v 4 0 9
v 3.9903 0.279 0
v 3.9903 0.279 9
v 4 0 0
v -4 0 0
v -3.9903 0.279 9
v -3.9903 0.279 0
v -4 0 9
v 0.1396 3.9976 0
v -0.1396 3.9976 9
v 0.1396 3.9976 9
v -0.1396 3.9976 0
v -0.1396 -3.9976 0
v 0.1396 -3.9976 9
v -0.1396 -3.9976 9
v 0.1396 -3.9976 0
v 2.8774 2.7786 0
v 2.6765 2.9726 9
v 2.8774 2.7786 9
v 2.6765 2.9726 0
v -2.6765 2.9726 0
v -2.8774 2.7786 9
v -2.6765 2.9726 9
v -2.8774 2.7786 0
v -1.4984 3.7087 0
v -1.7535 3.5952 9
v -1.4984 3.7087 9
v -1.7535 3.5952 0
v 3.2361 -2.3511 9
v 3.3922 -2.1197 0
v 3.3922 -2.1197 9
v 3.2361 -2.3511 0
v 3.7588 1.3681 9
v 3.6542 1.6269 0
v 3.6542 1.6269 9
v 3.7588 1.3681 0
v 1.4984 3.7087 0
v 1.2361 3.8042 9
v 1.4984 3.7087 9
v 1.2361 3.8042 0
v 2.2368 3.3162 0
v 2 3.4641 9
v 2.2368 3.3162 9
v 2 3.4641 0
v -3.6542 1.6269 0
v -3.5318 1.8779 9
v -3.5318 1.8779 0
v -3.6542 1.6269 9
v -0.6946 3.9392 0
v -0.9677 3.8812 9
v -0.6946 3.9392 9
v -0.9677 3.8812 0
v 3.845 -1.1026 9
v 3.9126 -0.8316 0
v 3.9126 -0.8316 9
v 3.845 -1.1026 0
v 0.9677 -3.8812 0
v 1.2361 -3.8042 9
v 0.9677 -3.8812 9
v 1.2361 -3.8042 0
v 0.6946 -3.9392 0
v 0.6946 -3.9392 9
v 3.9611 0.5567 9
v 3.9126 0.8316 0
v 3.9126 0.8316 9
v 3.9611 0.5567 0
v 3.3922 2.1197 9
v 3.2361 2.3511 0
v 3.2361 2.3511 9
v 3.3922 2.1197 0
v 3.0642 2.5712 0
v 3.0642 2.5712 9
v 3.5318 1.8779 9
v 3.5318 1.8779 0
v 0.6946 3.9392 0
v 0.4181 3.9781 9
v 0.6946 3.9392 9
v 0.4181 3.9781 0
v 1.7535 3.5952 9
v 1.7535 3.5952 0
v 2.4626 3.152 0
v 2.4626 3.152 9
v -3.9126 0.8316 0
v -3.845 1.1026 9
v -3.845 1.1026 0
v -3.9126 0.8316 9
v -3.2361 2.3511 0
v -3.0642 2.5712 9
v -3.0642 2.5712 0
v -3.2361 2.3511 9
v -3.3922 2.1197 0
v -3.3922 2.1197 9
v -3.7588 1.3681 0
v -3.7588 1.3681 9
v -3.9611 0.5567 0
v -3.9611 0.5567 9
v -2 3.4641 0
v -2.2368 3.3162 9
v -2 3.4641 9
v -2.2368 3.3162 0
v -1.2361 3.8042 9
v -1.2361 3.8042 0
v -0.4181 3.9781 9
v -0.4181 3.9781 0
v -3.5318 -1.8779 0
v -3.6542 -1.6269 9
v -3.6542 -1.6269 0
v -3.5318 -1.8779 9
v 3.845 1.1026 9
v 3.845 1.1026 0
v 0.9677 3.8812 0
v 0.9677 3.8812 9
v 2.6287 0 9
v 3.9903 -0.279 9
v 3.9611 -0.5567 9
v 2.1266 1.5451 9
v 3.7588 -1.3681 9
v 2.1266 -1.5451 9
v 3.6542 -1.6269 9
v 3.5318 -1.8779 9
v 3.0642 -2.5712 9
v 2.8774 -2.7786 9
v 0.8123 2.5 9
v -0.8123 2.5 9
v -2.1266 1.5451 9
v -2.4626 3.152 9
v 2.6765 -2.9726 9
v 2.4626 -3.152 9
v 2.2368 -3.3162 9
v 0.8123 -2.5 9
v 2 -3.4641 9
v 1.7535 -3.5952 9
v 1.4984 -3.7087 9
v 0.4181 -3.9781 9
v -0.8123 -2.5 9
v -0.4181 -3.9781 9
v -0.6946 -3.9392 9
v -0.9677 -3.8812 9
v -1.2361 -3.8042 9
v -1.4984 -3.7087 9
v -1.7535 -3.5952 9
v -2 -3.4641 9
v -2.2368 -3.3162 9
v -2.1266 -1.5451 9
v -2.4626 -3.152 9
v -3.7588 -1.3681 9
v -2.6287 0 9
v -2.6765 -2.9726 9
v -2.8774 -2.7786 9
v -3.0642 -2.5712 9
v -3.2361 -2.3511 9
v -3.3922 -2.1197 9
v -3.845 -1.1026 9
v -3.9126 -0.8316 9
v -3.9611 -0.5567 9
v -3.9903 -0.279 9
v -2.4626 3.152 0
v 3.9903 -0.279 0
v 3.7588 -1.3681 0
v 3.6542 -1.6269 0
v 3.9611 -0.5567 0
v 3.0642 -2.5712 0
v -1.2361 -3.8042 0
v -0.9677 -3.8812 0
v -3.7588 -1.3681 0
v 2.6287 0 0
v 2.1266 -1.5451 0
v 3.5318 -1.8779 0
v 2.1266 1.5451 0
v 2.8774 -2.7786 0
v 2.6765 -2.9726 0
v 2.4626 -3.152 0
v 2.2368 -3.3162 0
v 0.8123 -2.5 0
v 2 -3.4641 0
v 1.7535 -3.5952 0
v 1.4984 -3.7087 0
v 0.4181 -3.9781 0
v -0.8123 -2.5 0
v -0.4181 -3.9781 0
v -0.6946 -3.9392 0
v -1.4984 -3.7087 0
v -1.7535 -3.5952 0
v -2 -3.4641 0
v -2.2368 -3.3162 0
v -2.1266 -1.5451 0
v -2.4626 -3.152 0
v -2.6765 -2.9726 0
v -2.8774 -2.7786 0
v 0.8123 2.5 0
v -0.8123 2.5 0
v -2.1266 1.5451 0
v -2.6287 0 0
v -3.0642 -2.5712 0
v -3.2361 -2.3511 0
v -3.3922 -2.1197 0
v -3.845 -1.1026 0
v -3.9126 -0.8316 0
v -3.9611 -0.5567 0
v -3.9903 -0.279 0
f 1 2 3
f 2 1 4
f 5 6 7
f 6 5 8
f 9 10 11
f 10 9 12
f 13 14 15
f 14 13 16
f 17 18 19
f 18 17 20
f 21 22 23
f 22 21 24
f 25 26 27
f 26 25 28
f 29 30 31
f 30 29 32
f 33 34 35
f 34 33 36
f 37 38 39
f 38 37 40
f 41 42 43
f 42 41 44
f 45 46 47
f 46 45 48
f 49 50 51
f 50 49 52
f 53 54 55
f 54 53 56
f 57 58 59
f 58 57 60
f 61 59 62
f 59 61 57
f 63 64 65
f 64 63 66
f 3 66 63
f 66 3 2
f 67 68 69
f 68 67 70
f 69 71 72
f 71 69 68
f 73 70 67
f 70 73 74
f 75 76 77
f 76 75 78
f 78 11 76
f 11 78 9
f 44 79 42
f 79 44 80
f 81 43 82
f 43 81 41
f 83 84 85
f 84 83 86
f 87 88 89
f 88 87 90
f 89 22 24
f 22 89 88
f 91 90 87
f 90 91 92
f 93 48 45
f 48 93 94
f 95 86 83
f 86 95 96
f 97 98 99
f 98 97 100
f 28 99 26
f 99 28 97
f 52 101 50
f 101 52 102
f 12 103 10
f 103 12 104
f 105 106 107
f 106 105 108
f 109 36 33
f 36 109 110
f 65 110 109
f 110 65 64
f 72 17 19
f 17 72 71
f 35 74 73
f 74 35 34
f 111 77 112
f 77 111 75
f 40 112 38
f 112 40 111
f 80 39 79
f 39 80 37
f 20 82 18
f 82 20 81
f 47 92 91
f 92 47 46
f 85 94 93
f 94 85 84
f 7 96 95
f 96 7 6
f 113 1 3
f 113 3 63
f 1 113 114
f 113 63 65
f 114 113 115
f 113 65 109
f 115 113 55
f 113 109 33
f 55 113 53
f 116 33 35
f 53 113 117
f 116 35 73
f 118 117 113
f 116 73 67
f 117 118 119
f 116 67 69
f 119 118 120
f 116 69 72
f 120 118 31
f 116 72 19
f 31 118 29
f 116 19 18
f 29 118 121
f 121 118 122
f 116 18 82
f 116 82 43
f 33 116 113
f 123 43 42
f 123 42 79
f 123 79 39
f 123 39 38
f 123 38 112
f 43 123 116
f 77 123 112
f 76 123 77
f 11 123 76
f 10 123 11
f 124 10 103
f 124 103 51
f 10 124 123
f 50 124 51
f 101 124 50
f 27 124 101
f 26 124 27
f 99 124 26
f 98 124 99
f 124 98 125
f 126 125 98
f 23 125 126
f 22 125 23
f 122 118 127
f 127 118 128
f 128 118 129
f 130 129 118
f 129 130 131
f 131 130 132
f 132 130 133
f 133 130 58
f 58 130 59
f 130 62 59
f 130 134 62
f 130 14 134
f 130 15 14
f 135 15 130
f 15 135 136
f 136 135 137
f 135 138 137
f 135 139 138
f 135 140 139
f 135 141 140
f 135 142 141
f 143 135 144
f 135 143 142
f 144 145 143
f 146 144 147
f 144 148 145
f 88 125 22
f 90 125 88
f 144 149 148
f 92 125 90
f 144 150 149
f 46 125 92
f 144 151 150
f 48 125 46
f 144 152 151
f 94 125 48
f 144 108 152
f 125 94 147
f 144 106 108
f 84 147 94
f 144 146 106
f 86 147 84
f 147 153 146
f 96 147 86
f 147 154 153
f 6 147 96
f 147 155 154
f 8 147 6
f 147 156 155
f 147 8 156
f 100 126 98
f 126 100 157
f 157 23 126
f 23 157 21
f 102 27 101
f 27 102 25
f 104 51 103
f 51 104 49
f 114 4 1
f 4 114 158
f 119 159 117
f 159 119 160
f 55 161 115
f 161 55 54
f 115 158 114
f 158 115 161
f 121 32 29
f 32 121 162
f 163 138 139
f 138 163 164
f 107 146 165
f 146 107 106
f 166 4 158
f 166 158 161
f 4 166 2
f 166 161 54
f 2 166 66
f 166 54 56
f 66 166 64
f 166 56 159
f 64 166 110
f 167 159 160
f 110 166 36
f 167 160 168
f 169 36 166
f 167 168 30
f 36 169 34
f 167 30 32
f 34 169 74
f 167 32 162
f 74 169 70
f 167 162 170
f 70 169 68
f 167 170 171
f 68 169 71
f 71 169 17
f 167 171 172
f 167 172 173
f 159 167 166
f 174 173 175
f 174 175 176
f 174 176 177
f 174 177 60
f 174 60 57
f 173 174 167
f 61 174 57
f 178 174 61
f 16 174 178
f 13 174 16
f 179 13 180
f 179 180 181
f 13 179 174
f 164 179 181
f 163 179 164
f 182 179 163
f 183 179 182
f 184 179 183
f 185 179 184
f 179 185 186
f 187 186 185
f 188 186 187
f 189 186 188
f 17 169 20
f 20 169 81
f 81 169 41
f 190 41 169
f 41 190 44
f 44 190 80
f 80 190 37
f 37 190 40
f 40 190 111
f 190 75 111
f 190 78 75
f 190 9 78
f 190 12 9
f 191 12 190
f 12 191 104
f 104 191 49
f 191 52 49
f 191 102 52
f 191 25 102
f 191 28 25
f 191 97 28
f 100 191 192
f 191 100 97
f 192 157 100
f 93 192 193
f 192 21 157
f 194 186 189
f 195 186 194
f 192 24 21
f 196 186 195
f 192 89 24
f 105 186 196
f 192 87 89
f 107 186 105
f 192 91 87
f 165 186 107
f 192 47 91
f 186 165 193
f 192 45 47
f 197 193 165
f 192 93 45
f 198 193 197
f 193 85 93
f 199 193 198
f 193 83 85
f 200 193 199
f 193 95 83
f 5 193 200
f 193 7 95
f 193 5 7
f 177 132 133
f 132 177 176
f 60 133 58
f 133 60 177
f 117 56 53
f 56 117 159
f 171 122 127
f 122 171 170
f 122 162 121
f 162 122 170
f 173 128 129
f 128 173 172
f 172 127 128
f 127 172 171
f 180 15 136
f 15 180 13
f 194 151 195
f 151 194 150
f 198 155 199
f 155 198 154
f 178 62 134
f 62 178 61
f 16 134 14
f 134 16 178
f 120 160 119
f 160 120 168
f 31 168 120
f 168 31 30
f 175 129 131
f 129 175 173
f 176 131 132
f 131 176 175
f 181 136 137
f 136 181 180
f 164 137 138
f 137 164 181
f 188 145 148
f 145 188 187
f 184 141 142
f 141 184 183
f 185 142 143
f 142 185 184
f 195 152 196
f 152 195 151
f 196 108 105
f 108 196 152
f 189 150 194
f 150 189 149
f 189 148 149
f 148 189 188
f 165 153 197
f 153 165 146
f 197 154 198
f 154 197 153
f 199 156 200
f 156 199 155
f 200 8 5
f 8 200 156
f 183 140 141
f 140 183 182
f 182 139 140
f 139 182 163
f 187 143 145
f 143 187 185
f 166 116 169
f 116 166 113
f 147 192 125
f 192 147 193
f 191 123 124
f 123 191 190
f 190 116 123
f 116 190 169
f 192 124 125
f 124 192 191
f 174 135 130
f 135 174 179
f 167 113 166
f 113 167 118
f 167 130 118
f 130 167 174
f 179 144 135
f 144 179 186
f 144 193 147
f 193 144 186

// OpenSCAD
// file: ../polyhole.scad
// The Cylinder is dead! Long live the Cylinder!
// A module for a polyhole by radius, based on Nophead's work.

module polyhole(h, r, cent = false)
{
    n = max(round(4 * r), 3);
    cylinder(h = h, r = r / cos(180 / n), $fn = n, center = cent);
}
// file: ../spacer.scad
use<polyhole.scad>

spacer(10, 10, 5);

module spacer(hei, or, ir, cent = false)
{
    difference()
    {
        cylinder(h = hei, r = or, center = cent, $fn = 90);
        polyhole(hei, ir, cent);
    }
}
// main file
use<../spacer.scad>

XYIdlerSpacer();

module XYIdlerSpacer()
{
    spacer(9, 8/2, 5/2);
}
